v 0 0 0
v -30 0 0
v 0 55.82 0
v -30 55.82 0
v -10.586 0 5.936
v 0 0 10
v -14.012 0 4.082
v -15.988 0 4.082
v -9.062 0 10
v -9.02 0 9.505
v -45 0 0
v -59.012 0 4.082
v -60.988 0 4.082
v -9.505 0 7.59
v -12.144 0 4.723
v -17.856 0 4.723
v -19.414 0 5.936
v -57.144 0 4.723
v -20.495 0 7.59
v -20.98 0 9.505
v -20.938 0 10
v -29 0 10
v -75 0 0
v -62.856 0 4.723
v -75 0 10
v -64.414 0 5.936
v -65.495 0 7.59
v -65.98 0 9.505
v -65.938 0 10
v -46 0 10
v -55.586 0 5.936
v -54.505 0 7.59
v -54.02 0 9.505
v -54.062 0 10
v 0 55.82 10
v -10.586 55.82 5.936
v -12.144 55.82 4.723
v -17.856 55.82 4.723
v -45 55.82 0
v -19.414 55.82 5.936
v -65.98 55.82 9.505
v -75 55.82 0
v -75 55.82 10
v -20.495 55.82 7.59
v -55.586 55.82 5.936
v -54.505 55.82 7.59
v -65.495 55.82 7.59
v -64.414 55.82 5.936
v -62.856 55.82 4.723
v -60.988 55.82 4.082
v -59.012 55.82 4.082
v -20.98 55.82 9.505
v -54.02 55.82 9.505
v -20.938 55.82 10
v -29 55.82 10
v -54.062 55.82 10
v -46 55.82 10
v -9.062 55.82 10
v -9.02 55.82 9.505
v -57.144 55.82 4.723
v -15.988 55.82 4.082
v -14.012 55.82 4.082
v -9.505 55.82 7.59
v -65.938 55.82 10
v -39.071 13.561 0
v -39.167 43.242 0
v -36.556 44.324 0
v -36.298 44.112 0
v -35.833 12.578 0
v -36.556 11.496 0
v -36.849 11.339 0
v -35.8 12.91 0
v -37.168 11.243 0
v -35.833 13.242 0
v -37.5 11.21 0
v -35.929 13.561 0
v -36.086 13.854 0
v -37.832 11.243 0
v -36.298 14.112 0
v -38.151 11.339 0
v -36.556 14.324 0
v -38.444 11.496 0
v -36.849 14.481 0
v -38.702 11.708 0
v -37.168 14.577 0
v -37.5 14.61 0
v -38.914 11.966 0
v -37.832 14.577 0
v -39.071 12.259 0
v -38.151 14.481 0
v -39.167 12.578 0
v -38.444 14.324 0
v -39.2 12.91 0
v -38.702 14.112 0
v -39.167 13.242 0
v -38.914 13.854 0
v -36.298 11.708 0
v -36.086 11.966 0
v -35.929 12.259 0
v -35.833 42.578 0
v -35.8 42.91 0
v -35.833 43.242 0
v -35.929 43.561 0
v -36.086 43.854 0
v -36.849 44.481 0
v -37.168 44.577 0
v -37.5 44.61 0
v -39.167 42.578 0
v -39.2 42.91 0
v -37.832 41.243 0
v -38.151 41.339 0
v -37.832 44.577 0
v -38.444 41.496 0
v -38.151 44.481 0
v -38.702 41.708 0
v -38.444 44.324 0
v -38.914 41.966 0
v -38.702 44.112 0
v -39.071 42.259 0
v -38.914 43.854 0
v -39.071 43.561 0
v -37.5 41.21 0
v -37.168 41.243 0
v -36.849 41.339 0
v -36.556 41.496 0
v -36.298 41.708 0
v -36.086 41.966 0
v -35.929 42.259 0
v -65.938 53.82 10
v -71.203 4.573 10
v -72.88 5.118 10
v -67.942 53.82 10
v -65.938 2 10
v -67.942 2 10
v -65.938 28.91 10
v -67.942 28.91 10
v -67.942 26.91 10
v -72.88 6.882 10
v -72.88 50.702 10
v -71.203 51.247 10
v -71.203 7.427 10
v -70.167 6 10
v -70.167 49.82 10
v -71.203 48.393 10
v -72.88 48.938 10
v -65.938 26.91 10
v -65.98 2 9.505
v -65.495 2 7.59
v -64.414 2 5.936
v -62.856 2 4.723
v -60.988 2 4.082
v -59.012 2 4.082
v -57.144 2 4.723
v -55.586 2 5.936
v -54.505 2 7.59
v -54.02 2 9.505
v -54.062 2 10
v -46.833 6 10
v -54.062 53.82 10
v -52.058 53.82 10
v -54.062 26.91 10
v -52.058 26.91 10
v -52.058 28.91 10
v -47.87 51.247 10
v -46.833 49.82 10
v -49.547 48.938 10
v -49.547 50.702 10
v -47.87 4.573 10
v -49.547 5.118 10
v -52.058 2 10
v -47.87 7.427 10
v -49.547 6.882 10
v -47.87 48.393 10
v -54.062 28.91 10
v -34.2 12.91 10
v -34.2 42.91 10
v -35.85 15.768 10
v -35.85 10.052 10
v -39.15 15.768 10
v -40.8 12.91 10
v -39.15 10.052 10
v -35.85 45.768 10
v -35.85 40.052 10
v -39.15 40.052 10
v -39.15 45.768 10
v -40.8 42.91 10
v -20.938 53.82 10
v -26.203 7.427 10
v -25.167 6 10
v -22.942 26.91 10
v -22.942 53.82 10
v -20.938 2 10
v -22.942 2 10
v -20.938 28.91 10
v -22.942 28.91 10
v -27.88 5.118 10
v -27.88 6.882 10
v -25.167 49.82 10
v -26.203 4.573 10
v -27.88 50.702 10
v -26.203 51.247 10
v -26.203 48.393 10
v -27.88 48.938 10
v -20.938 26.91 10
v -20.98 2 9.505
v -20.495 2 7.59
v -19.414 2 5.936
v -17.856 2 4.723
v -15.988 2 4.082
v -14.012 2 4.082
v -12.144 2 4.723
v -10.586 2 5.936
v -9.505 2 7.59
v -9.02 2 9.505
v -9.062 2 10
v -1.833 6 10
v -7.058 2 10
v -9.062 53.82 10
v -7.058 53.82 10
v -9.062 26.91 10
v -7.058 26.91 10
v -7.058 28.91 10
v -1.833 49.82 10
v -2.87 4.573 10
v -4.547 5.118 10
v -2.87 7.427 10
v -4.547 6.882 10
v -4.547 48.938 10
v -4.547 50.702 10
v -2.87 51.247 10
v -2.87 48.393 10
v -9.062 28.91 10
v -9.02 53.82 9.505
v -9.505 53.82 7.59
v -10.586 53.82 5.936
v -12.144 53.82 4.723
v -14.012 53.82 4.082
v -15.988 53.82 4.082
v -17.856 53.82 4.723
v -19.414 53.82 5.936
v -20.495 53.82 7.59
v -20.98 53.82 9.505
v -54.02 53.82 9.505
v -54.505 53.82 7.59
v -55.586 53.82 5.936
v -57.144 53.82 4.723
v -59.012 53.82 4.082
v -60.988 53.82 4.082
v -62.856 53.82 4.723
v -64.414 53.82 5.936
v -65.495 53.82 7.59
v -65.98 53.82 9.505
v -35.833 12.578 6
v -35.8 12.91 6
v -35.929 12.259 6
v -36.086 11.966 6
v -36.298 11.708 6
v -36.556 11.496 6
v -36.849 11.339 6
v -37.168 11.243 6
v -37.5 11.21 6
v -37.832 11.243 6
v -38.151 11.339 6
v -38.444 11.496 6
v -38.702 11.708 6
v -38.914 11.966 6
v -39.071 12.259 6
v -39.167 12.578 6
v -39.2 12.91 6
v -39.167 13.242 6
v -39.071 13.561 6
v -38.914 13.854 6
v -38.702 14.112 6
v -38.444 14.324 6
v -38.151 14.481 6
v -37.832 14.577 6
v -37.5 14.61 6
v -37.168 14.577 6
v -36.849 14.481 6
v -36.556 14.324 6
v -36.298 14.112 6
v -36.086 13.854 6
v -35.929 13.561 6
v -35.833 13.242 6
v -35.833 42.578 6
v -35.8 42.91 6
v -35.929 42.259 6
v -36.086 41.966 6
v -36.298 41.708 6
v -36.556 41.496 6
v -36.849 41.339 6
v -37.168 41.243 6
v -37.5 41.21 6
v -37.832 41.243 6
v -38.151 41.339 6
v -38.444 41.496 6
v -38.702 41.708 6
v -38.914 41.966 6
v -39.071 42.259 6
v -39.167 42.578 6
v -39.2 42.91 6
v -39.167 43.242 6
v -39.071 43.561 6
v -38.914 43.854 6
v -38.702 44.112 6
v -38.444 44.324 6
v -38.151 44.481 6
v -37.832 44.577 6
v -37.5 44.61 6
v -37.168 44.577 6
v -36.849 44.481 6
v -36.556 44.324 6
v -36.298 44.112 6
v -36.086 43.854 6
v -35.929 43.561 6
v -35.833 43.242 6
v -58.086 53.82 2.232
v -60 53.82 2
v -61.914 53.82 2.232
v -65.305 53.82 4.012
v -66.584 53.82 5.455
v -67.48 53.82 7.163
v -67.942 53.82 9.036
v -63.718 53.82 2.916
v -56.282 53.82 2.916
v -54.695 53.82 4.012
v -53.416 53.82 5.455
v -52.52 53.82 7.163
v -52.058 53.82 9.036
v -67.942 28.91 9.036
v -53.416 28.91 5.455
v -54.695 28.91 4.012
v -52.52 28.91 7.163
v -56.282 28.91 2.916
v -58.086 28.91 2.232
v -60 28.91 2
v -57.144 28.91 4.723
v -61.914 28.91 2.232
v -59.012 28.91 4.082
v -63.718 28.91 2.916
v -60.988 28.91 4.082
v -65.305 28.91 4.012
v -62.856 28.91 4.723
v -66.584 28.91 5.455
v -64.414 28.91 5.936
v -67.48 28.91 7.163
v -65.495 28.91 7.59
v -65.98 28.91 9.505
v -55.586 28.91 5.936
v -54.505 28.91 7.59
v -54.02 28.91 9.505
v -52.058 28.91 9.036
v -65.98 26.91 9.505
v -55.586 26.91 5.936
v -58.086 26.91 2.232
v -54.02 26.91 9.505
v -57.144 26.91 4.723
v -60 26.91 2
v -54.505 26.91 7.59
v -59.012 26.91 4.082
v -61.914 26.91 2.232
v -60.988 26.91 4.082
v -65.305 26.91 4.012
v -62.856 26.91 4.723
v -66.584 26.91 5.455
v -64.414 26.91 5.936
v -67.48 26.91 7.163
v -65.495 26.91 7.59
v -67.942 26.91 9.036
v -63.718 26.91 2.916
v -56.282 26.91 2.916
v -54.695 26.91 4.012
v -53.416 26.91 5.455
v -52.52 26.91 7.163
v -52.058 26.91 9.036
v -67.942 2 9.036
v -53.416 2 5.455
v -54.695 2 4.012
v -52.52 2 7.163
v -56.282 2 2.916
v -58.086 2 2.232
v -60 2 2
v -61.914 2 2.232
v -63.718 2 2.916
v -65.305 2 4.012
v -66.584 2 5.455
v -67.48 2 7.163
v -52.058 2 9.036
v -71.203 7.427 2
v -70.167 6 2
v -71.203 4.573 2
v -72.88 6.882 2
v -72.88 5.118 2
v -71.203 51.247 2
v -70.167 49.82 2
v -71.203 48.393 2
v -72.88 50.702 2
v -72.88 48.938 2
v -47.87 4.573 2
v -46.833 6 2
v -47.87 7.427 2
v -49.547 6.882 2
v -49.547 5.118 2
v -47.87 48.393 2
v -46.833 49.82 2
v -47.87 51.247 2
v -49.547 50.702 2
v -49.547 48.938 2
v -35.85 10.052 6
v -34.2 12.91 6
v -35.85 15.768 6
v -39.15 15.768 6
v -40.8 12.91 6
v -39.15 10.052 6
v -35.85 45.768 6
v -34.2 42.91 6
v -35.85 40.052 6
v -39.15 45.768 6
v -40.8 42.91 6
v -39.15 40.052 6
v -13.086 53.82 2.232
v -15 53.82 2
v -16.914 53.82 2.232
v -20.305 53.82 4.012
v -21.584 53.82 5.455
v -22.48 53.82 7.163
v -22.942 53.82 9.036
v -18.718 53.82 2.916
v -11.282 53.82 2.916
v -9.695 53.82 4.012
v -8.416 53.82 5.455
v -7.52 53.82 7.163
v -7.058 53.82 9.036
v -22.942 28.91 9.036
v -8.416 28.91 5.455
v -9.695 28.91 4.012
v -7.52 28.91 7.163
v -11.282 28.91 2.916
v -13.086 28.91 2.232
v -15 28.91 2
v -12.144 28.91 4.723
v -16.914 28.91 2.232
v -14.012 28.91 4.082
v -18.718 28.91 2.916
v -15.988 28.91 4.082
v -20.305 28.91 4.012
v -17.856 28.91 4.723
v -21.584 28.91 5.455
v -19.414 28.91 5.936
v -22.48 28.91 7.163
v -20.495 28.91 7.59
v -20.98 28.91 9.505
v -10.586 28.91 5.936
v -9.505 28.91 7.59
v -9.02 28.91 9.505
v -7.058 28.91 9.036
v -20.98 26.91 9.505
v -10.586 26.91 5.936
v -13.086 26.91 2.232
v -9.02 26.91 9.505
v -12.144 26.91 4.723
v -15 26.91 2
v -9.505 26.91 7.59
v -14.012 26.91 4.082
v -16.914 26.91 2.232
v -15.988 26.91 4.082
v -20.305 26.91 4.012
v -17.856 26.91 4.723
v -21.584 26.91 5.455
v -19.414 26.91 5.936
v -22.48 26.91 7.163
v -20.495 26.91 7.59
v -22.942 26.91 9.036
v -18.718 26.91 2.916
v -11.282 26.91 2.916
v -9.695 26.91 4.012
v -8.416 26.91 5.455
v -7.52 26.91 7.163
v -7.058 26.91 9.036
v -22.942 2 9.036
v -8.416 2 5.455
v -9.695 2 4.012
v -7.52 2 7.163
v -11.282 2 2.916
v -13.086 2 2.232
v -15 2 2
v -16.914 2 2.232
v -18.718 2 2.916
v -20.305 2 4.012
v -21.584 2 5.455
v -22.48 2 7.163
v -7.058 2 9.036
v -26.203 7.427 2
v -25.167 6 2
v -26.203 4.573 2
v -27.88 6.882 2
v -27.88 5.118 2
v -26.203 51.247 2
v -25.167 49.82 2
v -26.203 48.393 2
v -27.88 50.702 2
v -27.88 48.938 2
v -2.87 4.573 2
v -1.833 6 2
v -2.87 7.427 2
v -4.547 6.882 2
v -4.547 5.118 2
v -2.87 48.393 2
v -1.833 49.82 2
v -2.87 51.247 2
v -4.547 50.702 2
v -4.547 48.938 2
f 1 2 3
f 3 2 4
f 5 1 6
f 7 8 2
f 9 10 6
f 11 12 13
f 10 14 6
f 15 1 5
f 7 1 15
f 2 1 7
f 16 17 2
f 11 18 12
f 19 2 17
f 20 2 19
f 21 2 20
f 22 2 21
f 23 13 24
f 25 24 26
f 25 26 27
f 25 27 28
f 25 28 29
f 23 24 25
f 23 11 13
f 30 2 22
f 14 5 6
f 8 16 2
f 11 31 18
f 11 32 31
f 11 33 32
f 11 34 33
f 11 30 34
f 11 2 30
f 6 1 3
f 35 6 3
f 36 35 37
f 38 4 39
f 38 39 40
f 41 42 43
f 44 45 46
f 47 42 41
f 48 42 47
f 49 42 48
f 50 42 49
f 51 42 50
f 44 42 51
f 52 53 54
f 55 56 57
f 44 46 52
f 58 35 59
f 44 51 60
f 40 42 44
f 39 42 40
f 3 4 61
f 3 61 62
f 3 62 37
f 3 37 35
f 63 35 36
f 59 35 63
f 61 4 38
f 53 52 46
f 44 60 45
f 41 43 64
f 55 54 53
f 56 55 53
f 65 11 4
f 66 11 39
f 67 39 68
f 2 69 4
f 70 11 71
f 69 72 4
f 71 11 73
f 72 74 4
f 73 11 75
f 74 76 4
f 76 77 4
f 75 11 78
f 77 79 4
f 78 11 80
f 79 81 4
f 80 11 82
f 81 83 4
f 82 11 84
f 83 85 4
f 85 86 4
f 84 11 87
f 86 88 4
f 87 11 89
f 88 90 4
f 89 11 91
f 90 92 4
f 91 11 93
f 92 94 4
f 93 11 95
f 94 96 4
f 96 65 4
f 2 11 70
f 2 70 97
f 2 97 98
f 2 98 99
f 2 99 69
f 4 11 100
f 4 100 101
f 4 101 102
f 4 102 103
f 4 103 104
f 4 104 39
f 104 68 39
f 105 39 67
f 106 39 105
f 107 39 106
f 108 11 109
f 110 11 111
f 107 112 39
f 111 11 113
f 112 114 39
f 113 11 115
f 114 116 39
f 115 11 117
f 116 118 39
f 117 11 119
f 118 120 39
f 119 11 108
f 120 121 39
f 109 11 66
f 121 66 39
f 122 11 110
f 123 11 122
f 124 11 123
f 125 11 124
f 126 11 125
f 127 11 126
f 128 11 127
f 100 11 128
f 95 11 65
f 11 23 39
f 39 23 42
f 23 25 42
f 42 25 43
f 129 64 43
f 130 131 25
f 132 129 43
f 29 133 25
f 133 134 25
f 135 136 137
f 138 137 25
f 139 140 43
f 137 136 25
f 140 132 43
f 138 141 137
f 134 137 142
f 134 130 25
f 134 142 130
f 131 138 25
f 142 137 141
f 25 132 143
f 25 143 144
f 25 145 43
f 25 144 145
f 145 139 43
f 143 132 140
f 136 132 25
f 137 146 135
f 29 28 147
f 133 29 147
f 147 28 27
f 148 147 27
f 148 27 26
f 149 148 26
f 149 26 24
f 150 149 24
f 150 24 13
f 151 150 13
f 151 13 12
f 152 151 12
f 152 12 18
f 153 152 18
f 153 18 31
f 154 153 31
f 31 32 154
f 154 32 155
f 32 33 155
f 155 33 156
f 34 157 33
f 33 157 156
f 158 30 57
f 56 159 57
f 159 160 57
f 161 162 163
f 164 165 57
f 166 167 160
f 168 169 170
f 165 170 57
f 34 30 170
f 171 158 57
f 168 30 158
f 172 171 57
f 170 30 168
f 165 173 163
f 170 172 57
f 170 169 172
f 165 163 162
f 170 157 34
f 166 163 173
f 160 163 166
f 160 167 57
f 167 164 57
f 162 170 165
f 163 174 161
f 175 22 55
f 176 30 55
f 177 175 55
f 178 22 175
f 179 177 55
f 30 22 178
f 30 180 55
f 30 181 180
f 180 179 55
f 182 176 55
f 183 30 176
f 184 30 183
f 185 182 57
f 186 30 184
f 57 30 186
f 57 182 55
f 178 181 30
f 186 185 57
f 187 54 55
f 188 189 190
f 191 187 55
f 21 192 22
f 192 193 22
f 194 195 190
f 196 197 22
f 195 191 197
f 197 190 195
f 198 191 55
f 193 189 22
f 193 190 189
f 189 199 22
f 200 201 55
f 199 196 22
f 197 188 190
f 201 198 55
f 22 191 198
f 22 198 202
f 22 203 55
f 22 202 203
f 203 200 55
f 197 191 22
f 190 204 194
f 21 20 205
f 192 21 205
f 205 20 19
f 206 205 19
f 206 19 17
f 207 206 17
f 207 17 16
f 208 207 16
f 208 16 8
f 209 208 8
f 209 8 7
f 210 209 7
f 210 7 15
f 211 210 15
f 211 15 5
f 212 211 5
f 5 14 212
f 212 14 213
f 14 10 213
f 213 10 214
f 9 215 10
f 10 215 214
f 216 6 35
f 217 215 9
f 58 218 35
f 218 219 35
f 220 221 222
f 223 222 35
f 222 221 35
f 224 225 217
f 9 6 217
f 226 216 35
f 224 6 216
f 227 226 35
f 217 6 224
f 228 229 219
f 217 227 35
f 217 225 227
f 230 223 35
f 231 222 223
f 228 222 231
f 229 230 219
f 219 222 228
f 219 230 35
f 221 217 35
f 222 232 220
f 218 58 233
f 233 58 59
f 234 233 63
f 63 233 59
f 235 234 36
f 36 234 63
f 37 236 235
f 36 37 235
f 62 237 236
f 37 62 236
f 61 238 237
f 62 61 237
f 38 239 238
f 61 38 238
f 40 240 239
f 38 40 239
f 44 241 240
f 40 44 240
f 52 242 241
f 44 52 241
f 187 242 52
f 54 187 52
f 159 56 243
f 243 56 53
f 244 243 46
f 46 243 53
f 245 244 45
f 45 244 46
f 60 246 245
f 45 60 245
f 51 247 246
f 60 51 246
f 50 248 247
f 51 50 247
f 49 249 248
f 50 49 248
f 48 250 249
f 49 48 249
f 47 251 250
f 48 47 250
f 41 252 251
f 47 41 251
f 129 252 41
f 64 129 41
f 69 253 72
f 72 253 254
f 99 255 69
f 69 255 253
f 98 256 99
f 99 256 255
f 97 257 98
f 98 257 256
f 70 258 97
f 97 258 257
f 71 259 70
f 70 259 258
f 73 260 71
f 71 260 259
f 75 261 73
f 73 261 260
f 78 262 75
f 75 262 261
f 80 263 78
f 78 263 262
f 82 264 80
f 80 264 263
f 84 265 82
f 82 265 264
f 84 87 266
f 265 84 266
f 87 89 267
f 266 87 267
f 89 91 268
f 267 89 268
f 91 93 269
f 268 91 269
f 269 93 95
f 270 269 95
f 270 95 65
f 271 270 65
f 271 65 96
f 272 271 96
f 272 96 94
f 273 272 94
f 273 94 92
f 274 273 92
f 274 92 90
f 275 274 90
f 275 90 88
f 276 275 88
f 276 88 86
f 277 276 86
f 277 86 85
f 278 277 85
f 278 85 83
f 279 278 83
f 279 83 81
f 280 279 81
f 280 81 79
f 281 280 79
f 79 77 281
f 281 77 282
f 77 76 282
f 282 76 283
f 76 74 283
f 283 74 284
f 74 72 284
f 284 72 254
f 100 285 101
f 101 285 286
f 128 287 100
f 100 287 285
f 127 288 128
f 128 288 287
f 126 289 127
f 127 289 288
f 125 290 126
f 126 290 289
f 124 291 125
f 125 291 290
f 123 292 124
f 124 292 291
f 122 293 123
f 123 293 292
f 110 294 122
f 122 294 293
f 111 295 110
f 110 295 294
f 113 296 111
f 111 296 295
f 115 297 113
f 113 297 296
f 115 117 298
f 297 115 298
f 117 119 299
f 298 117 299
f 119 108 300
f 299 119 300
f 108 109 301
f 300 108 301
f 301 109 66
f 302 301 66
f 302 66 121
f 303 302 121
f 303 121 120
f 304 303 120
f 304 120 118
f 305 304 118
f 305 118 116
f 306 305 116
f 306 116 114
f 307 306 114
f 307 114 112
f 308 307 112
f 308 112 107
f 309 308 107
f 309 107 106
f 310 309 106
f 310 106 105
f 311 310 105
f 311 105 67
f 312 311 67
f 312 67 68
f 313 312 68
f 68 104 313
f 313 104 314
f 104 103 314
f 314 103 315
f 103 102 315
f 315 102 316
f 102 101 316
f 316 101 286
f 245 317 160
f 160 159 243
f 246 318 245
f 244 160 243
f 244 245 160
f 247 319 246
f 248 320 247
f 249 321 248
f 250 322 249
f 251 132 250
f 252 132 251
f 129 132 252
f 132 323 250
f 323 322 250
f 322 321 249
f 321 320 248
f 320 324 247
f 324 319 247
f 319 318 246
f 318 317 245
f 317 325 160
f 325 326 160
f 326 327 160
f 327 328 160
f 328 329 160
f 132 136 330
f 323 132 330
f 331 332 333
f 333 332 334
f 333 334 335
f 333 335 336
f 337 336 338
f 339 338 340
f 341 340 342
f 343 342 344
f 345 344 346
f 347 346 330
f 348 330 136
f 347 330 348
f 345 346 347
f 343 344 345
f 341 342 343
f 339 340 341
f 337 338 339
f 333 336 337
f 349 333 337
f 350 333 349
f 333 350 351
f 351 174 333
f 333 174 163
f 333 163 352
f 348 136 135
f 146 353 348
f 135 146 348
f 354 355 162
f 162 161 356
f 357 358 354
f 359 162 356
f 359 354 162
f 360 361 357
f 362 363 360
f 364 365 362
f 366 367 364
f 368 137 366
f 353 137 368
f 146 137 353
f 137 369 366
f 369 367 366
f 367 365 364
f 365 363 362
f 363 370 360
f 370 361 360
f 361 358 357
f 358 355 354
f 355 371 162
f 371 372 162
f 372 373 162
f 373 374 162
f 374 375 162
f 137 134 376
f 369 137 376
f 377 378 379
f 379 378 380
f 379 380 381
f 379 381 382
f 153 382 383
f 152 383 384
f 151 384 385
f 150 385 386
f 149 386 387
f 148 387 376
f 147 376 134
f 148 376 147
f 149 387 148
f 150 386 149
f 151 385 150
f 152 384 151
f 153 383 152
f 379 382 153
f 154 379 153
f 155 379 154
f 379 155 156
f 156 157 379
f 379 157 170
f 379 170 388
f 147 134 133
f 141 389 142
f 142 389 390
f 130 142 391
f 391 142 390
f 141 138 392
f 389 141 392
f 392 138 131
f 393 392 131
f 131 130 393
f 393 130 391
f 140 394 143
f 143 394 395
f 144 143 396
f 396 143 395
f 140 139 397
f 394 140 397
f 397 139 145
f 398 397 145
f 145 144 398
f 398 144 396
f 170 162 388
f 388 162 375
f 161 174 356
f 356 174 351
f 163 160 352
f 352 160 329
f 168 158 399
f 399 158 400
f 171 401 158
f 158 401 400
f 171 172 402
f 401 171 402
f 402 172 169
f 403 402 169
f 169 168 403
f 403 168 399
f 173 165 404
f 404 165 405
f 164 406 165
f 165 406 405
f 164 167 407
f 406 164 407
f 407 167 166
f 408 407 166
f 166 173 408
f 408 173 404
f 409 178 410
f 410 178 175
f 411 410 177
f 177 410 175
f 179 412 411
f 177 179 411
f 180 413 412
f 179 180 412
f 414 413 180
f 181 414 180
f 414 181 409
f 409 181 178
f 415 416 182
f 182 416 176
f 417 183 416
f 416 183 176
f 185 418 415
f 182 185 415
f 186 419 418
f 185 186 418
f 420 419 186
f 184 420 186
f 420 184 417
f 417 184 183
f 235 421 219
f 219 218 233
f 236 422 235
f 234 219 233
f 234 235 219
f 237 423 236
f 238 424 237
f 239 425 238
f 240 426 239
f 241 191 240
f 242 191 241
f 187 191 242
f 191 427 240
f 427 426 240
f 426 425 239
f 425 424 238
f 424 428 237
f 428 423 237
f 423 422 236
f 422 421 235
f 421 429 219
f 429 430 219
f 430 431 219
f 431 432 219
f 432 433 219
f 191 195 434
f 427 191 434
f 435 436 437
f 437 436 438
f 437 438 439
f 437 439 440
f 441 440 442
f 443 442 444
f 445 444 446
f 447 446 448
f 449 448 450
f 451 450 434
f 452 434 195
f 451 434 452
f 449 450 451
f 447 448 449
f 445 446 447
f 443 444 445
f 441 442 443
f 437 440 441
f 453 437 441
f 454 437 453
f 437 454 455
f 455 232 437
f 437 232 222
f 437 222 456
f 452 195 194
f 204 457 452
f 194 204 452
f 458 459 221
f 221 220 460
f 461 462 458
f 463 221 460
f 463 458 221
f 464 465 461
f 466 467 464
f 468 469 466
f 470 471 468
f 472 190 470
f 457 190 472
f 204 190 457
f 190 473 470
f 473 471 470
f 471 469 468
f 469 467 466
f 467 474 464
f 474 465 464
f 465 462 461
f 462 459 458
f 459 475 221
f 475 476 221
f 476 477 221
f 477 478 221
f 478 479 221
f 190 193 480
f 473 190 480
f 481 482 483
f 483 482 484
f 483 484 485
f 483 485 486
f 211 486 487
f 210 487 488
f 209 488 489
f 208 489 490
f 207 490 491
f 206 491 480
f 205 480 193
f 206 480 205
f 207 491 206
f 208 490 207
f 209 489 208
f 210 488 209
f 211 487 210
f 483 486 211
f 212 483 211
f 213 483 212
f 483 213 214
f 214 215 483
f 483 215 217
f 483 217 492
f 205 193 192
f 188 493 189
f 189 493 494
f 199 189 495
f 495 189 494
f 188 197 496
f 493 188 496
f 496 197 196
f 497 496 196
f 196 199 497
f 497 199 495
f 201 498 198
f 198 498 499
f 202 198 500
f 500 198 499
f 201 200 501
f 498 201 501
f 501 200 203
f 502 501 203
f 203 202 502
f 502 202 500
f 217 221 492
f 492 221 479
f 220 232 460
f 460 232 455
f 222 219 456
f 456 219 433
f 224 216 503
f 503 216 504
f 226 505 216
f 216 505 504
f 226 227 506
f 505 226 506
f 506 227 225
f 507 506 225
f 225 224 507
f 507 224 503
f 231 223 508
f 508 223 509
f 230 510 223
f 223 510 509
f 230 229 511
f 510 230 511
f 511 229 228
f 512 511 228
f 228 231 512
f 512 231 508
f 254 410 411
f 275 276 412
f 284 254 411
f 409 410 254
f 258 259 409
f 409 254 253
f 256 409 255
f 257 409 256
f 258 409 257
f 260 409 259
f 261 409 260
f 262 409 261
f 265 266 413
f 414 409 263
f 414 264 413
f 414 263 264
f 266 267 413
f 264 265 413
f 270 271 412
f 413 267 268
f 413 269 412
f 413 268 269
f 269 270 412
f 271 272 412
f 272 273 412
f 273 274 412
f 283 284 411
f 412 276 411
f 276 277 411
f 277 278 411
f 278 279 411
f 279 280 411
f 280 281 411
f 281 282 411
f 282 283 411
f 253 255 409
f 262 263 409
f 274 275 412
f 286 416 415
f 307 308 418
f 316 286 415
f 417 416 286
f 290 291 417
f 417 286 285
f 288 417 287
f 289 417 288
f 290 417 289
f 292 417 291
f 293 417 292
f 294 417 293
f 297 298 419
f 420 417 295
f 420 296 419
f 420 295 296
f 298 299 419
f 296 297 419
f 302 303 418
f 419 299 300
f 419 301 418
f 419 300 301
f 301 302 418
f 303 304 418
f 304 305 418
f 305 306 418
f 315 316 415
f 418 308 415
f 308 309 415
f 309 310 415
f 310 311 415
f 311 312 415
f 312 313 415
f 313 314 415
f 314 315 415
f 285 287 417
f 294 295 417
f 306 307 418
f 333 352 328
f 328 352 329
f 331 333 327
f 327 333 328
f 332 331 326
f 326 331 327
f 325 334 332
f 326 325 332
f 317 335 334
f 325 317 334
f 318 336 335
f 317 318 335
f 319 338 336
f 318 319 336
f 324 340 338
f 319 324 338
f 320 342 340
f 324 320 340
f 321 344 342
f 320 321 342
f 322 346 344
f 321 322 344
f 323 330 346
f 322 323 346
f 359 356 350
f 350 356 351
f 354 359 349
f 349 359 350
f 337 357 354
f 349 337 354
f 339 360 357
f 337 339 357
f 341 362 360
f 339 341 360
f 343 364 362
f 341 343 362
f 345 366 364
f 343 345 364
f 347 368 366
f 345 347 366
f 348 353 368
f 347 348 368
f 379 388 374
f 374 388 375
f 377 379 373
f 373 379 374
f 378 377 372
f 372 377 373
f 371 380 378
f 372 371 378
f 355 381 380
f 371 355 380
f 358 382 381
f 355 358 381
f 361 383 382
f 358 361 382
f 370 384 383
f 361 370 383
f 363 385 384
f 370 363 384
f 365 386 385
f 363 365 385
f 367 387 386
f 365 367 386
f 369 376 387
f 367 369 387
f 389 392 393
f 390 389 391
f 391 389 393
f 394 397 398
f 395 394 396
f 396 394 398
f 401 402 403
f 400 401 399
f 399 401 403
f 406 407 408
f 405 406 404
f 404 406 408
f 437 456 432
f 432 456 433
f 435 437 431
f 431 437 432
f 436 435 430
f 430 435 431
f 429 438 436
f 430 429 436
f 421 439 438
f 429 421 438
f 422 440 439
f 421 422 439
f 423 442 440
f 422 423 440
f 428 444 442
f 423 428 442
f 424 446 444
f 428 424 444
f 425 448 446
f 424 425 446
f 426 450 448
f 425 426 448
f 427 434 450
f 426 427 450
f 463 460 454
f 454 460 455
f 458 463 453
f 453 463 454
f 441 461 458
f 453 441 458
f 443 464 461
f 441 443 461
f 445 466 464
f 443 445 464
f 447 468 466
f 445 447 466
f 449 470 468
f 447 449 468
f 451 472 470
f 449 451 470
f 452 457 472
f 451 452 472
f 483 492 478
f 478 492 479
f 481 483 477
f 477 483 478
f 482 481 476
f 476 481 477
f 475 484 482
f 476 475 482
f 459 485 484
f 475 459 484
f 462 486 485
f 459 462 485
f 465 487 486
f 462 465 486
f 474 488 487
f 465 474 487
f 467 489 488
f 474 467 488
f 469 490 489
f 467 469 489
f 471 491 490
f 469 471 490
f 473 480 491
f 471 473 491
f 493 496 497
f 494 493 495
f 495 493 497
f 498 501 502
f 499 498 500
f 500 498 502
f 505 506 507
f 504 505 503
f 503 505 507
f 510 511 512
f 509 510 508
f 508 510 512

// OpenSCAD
// file: BearingMount2.scad
 
// X and Y position rotation functions
//function RotateX(x,xc,y,yc,theta) = cos(theta)*(x-xc) - sin(theta)*(y-yc) + xc;
//function RotateY(x,xc,y,yc,theta) = sin(theta)*(x-xc) + cos(theta)*(y-yc) + yc;
//  TEST
//HalfRail(3);
// Draw a LM8UU bearing
// ---------------------------------------------------------------------
module LM8UU()
{
	dia = 7.5;
	dia_off=.5;
	long = 24;
	long_off=.91;
	color("Green") 
	translate([0,0,0]) 
	rotate([270,0,0])
	cylinder(h=long+long_off,r=dia+dia_off);
}

// Draw a 608ZZ bearing
// ---------------------------------------------------------------------
module 608ZZ()
{
	dia_off=.5;
	color("red")
	rotate([270,0,0])
	cylinder(h=7,r=11+dia_off);
}

//Draw a 8mm Rod
// ---------------------------------------------------------------------
module 8mmRod(Lenght)
{
	dia_off=.97;
	color("blue")
	rotate([270,0,0])
	cylinder(h=Lenght,r=4+dia_off);
}


// Half rail Module
//---------------------------------------------------------------
// SplitFixType = 1 Screw Head,  2+= 3mm nut;
module HalfRail(FixHoleType = 1)
{
AdditionalHeight = 10;   //for screw hole
LM8UUDiam = 8*2;
LM8UULenght = 24.91;
WallWidth = 2;
BearingCenterZ = LM8UUDiam/2 + WallWidth + AdditionalHeight/2 ;
TotalHeight =  LM8UUDiam + (WallWidth*2) + AdditionalHeight ;
TotalLenght = (LM8UULenght*2) +  (WallWidth*3);
TotalWidth = WallWidth + LM8UUDiam/2;


//BaseHeight =  BaseHeightRelative/2 + OuterDia;


HexNutHoleRadius = 3.5;
ScrewHeadRadius = 3.9;
ScrewDomeHeadRadius = 4.1;
ScrewDomeHoleRadius = 1.5;

echo("***TotalLenght=", TotalLenght);
echo("***TotalWidth=", TotalWidth);
echo("***TotalHeight=", TotalHeight);
echo("***BearingCenterZ=", BearingCenterZ);

//translate([0,0,BaseHeight])

	difference()
	{
		union()
		{
			cube([TotalWidth ,TotalLenght,TotalHeight ]);
		}
			
		// Bearings
		translate ([TotalWidth,WallWidth,BearingCenterZ]) LM8UU();
		translate ([TotalWidth,WallWidth+LM8UULenght+WallWidth,BearingCenterZ]) LM8UU();

		//Shaft 8mm
		translate ([TotalWidth,-1,BearingCenterZ]) rotate([270,0,0]) cylinder (h =TotalLenght+2,  r=6);


		if ( FixHoleType == 3) //Dome Screw Head
		{
			translate([2,6,TotalHeight - AdditionalHeight/3]) rotate([0,90,0]) cylinder(h=30,r=2 , $fn=16);
			translate([-1,6,TotalHeight - AdditionalHeight/3]) rotate([0,90,0]) cylinder(h=3.5,r=3.5);
			
			translate([2,6,AdditionalHeight/3]) rotate([0,90,0]) cylinder(h=30,r=2 ,$fn=16);
			translate([-1,6,AdditionalHeight/3]) rotate([0,90,0]) cylinder(h=3.5,r=3.5);
			
			translate([2,TotalLenght-6,TotalHeight - AdditionalHeight/3]) rotate([0,90,0]) cylinder(h=30,r=2, $fn=16);
			translate([-1,TotalLenght-6,TotalHeight - AdditionalHeight/3]) rotate([0,90,0]) cylinder(h=3.5,r=3.5);
			
			translate([2,TotalLenght-6,AdditionalHeight/3]) rotate([0,90,0]) cylinder(h=30,r=2, $fn=16);
			translate([-1,TotalLenght-6,AdditionalHeight/3]) rotate([0,90,0]) cylinder(h=3.5,r=3.5);
		}

		
		if ( FixHoleType == 4) //Dome Screw Hole
		{
			translate([2,6,TotalHeight - AdditionalHeight/3]) rotate([0,90,0]) cylinder(h=30,r=1.5);
			translate([2,6,AdditionalHeight/3]) rotate([0,90,0]) cylinder(h=30,r=1.5);
			translate([2,TotalLenght-6,TotalHeight - AdditionalHeight/3]) rotate([0,90,0]) cylinder(h=30,r=1.5);
			translate([2,TotalLenght-6,AdditionalHeight/3]) rotate([0,90,0]) cylinder(h=30,r=1.5);
		}

		
		
	}	
	//To remove
		// translate ([0,2,0])LM8UU();
		// translate ([0,32,0]) LM8UU();
		// translate ([0,-25,0]) 8mmRod(100);
		// translate ([0,-15,-OuterDia]) cube([15,100,50]);		
		

		//Draw the fixing holes
		// if ( SplitFixType == 1 ) //m3 Screw Head
		// {
			// translate([-20,-2,8.5]) rotate ([0,90,0]) cylinder(h=50, r=1.9, $fn=10);
			// translate([-24.5,-2,8.5]) rotate ([0,90,0]) cylinder(h=20, r=ScrewHeadRadius, $fn=10);
			// translate([-20,-2,-8.5]) rotate ([0,90,0]) cylinder(h=50, r=1.9, $fn=10);
			// translate([-24.5,-2,-8.5]) rotate ([0,90,0]) cylinder(h=20, r=ScrewHeadRadius, $fn=10);
			// translate([-20,60,8.5]) rotate ([0,90,0]) cylinder(h=50, r=1.9, $fn=10);
			// translate([-24.5,60,8.5]) rotate ([0,90,0]) cylinder(h=20, r=ScrewHeadRadius, $fn=10);
			// translate([-20,60,-8.5]) rotate ([0,90,0]) cylinder(h=50, r=1.9, $fn=10);
			// translate([-24.5,60,-8.5]) rotate ([0,90,0]) cylinder(h=20, r=ScrewHeadRadius, $fn=10);
		// }
		
		// if ( SplitFixType == 2) //M3 Nuts
		// {
			// translate([-20,-2,8.5]) rotate ([0,90,0]) cylinder(h=50, r=1.9, $fn=10);
			// translate([-24.5,-2,8.5]) rotate ([0,90,0]) cylinder(h=20, r=HexNutHoleRadius, $fn=6);
			// translate([-20,-2,-8.5]) rotate ([0,90,0]) cylinder(h=50, r=1.9, $fn=10);
			// translate([-24.5,-2,-8.5]) rotate ([0,90,0]) cylinder(h=20, r=HexNutHoleRadius, $fn=6);
			// translate([-20,60,8.5]) rotate ([0,90,0]) cylinder(h=50, r=1.9, $fn=10);
			// translate([-24.5,60,8.5]) rotate ([0,90,0]) cylinder(h=20, r=HexNutHoleRadius, $fn=6);
			// translate([-20,60,-8.5]) rotate ([0,90,0]) cylinder(h=50, r=1.9, $fn=10);
			// translate([-24.5,60,-8.5]) rotate ([0,90,0]) cylinder(h=20, r=HexNutHoleRadius, $fn=6);
		// }
		
		// if ( SplitFixType == 3) //DomeScrew Head
		// {
			// translate([-20,-2,8.5]) rotate ([0,90,0]) cylinder(h=50, r=1.9, $fn=10);
			// translate([-27.5,-2,8.5]) rotate ([0,90,0]) cylinder(h=20, r=ScrewDomeHeadRadius, $fn=10);
			// translate([-20,-2,-8.5]) rotate ([0,90,0]) cylinder(h=50, r=1.9, $fn=10);
			// translate([-27.5,-2,-8.5]) rotate ([0,90,0]) cylinder(h=20, r=ScrewDomeHeadRadius, $fn=10);
			// translate([-20,60,8.5]) rotate ([0,90,0]) cylinder(h=50, r=1.9, $fn=10);
			// translate([-27.5,60,8.5]) rotate ([0,90,0]) cylinder(h=20, r=ScrewDomeHeadRadius, $fn=10);
			// translate([-20,60,-8.5]) rotate ([0,90,0]) cylinder(h=50, r=1.9, $fn=10);
			// translate([-27.5,60,-8.5]) rotate ([0,90,0]) cylinder(h=20, r=ScrewDomeHeadRadius, $fn=10);
		// }

		// if ( SplitFixType == 4) //Dome Screw Hole
		// {
			// translate([-8,-2,8.5]) rotate ([0,90,0]) cylinder(h=20, r=ScrewDomeHoleRadius, $fn=10);
			// translate([-8,-2,-8.5]) rotate ([0,90,0]) cylinder(h=50, r=ScrewDomeHoleRadius, $fn=10);
			// translate([-8,60,8.5]) rotate ([0,90,0]) cylinder(h=50, r=ScrewDomeHoleRadius, $fn=10);
			// translate([-8,60,-8.5]) rotate ([0,90,0]) cylinder(h=50, r=ScrewDomeHoleRadius, $fn=10);
		// }
		
	//}
}
// main file
//Carriage.scad
include<BearingMount2.scad>;

HolderRodSpacing = 45;
BearingHolderLenght = 55.82; 
BearingHolderHeight = 30;
BearingHolderWidth = 10; 

MountingHoldSpacing = 30;  //Same as Prusa Mendel I3 mounting holes

TotalHeight = BearingHolderHeight*2 + (HolderRodSpacing-BearingHolderHeight);

translate([0,0,10]) rotate([0,180,0])
difference()
{
	union()
	{
		translate([0,0,10]) rotate([0,90,0]) HalfRail(4);
		translate([HolderRodSpacing,0,10]) rotate([0,90,0]) HalfRail(4);
		translate([BearingHolderHeight-1,0,0]) cube([HolderRodSpacing-BearingHolderHeight+2,BearingHolderLenght,BearingHolderWidth]);
	}

	translate([TotalHeight/2,BearingHolderLenght/2 - MountingHoldSpacing/2 ,4])cylinder(r=1.7, h=20, $fn=32);
	translate([TotalHeight/2,BearingHolderLenght/2 - MountingHoldSpacing/2,-1])cylinder(r=3.3, h=5, $fn=6); 

	translate([TotalHeight/2,(BearingHolderLenght/2) + (MountingHoldSpacing/2),4])cylinder(r=1.7, h=20, $fn=32);
	translate([TotalHeight/2,(BearingHolderLenght/2) + (MountingHoldSpacing/2),-1])cylinder(r=3.3, h=5, $fn=6);

}
